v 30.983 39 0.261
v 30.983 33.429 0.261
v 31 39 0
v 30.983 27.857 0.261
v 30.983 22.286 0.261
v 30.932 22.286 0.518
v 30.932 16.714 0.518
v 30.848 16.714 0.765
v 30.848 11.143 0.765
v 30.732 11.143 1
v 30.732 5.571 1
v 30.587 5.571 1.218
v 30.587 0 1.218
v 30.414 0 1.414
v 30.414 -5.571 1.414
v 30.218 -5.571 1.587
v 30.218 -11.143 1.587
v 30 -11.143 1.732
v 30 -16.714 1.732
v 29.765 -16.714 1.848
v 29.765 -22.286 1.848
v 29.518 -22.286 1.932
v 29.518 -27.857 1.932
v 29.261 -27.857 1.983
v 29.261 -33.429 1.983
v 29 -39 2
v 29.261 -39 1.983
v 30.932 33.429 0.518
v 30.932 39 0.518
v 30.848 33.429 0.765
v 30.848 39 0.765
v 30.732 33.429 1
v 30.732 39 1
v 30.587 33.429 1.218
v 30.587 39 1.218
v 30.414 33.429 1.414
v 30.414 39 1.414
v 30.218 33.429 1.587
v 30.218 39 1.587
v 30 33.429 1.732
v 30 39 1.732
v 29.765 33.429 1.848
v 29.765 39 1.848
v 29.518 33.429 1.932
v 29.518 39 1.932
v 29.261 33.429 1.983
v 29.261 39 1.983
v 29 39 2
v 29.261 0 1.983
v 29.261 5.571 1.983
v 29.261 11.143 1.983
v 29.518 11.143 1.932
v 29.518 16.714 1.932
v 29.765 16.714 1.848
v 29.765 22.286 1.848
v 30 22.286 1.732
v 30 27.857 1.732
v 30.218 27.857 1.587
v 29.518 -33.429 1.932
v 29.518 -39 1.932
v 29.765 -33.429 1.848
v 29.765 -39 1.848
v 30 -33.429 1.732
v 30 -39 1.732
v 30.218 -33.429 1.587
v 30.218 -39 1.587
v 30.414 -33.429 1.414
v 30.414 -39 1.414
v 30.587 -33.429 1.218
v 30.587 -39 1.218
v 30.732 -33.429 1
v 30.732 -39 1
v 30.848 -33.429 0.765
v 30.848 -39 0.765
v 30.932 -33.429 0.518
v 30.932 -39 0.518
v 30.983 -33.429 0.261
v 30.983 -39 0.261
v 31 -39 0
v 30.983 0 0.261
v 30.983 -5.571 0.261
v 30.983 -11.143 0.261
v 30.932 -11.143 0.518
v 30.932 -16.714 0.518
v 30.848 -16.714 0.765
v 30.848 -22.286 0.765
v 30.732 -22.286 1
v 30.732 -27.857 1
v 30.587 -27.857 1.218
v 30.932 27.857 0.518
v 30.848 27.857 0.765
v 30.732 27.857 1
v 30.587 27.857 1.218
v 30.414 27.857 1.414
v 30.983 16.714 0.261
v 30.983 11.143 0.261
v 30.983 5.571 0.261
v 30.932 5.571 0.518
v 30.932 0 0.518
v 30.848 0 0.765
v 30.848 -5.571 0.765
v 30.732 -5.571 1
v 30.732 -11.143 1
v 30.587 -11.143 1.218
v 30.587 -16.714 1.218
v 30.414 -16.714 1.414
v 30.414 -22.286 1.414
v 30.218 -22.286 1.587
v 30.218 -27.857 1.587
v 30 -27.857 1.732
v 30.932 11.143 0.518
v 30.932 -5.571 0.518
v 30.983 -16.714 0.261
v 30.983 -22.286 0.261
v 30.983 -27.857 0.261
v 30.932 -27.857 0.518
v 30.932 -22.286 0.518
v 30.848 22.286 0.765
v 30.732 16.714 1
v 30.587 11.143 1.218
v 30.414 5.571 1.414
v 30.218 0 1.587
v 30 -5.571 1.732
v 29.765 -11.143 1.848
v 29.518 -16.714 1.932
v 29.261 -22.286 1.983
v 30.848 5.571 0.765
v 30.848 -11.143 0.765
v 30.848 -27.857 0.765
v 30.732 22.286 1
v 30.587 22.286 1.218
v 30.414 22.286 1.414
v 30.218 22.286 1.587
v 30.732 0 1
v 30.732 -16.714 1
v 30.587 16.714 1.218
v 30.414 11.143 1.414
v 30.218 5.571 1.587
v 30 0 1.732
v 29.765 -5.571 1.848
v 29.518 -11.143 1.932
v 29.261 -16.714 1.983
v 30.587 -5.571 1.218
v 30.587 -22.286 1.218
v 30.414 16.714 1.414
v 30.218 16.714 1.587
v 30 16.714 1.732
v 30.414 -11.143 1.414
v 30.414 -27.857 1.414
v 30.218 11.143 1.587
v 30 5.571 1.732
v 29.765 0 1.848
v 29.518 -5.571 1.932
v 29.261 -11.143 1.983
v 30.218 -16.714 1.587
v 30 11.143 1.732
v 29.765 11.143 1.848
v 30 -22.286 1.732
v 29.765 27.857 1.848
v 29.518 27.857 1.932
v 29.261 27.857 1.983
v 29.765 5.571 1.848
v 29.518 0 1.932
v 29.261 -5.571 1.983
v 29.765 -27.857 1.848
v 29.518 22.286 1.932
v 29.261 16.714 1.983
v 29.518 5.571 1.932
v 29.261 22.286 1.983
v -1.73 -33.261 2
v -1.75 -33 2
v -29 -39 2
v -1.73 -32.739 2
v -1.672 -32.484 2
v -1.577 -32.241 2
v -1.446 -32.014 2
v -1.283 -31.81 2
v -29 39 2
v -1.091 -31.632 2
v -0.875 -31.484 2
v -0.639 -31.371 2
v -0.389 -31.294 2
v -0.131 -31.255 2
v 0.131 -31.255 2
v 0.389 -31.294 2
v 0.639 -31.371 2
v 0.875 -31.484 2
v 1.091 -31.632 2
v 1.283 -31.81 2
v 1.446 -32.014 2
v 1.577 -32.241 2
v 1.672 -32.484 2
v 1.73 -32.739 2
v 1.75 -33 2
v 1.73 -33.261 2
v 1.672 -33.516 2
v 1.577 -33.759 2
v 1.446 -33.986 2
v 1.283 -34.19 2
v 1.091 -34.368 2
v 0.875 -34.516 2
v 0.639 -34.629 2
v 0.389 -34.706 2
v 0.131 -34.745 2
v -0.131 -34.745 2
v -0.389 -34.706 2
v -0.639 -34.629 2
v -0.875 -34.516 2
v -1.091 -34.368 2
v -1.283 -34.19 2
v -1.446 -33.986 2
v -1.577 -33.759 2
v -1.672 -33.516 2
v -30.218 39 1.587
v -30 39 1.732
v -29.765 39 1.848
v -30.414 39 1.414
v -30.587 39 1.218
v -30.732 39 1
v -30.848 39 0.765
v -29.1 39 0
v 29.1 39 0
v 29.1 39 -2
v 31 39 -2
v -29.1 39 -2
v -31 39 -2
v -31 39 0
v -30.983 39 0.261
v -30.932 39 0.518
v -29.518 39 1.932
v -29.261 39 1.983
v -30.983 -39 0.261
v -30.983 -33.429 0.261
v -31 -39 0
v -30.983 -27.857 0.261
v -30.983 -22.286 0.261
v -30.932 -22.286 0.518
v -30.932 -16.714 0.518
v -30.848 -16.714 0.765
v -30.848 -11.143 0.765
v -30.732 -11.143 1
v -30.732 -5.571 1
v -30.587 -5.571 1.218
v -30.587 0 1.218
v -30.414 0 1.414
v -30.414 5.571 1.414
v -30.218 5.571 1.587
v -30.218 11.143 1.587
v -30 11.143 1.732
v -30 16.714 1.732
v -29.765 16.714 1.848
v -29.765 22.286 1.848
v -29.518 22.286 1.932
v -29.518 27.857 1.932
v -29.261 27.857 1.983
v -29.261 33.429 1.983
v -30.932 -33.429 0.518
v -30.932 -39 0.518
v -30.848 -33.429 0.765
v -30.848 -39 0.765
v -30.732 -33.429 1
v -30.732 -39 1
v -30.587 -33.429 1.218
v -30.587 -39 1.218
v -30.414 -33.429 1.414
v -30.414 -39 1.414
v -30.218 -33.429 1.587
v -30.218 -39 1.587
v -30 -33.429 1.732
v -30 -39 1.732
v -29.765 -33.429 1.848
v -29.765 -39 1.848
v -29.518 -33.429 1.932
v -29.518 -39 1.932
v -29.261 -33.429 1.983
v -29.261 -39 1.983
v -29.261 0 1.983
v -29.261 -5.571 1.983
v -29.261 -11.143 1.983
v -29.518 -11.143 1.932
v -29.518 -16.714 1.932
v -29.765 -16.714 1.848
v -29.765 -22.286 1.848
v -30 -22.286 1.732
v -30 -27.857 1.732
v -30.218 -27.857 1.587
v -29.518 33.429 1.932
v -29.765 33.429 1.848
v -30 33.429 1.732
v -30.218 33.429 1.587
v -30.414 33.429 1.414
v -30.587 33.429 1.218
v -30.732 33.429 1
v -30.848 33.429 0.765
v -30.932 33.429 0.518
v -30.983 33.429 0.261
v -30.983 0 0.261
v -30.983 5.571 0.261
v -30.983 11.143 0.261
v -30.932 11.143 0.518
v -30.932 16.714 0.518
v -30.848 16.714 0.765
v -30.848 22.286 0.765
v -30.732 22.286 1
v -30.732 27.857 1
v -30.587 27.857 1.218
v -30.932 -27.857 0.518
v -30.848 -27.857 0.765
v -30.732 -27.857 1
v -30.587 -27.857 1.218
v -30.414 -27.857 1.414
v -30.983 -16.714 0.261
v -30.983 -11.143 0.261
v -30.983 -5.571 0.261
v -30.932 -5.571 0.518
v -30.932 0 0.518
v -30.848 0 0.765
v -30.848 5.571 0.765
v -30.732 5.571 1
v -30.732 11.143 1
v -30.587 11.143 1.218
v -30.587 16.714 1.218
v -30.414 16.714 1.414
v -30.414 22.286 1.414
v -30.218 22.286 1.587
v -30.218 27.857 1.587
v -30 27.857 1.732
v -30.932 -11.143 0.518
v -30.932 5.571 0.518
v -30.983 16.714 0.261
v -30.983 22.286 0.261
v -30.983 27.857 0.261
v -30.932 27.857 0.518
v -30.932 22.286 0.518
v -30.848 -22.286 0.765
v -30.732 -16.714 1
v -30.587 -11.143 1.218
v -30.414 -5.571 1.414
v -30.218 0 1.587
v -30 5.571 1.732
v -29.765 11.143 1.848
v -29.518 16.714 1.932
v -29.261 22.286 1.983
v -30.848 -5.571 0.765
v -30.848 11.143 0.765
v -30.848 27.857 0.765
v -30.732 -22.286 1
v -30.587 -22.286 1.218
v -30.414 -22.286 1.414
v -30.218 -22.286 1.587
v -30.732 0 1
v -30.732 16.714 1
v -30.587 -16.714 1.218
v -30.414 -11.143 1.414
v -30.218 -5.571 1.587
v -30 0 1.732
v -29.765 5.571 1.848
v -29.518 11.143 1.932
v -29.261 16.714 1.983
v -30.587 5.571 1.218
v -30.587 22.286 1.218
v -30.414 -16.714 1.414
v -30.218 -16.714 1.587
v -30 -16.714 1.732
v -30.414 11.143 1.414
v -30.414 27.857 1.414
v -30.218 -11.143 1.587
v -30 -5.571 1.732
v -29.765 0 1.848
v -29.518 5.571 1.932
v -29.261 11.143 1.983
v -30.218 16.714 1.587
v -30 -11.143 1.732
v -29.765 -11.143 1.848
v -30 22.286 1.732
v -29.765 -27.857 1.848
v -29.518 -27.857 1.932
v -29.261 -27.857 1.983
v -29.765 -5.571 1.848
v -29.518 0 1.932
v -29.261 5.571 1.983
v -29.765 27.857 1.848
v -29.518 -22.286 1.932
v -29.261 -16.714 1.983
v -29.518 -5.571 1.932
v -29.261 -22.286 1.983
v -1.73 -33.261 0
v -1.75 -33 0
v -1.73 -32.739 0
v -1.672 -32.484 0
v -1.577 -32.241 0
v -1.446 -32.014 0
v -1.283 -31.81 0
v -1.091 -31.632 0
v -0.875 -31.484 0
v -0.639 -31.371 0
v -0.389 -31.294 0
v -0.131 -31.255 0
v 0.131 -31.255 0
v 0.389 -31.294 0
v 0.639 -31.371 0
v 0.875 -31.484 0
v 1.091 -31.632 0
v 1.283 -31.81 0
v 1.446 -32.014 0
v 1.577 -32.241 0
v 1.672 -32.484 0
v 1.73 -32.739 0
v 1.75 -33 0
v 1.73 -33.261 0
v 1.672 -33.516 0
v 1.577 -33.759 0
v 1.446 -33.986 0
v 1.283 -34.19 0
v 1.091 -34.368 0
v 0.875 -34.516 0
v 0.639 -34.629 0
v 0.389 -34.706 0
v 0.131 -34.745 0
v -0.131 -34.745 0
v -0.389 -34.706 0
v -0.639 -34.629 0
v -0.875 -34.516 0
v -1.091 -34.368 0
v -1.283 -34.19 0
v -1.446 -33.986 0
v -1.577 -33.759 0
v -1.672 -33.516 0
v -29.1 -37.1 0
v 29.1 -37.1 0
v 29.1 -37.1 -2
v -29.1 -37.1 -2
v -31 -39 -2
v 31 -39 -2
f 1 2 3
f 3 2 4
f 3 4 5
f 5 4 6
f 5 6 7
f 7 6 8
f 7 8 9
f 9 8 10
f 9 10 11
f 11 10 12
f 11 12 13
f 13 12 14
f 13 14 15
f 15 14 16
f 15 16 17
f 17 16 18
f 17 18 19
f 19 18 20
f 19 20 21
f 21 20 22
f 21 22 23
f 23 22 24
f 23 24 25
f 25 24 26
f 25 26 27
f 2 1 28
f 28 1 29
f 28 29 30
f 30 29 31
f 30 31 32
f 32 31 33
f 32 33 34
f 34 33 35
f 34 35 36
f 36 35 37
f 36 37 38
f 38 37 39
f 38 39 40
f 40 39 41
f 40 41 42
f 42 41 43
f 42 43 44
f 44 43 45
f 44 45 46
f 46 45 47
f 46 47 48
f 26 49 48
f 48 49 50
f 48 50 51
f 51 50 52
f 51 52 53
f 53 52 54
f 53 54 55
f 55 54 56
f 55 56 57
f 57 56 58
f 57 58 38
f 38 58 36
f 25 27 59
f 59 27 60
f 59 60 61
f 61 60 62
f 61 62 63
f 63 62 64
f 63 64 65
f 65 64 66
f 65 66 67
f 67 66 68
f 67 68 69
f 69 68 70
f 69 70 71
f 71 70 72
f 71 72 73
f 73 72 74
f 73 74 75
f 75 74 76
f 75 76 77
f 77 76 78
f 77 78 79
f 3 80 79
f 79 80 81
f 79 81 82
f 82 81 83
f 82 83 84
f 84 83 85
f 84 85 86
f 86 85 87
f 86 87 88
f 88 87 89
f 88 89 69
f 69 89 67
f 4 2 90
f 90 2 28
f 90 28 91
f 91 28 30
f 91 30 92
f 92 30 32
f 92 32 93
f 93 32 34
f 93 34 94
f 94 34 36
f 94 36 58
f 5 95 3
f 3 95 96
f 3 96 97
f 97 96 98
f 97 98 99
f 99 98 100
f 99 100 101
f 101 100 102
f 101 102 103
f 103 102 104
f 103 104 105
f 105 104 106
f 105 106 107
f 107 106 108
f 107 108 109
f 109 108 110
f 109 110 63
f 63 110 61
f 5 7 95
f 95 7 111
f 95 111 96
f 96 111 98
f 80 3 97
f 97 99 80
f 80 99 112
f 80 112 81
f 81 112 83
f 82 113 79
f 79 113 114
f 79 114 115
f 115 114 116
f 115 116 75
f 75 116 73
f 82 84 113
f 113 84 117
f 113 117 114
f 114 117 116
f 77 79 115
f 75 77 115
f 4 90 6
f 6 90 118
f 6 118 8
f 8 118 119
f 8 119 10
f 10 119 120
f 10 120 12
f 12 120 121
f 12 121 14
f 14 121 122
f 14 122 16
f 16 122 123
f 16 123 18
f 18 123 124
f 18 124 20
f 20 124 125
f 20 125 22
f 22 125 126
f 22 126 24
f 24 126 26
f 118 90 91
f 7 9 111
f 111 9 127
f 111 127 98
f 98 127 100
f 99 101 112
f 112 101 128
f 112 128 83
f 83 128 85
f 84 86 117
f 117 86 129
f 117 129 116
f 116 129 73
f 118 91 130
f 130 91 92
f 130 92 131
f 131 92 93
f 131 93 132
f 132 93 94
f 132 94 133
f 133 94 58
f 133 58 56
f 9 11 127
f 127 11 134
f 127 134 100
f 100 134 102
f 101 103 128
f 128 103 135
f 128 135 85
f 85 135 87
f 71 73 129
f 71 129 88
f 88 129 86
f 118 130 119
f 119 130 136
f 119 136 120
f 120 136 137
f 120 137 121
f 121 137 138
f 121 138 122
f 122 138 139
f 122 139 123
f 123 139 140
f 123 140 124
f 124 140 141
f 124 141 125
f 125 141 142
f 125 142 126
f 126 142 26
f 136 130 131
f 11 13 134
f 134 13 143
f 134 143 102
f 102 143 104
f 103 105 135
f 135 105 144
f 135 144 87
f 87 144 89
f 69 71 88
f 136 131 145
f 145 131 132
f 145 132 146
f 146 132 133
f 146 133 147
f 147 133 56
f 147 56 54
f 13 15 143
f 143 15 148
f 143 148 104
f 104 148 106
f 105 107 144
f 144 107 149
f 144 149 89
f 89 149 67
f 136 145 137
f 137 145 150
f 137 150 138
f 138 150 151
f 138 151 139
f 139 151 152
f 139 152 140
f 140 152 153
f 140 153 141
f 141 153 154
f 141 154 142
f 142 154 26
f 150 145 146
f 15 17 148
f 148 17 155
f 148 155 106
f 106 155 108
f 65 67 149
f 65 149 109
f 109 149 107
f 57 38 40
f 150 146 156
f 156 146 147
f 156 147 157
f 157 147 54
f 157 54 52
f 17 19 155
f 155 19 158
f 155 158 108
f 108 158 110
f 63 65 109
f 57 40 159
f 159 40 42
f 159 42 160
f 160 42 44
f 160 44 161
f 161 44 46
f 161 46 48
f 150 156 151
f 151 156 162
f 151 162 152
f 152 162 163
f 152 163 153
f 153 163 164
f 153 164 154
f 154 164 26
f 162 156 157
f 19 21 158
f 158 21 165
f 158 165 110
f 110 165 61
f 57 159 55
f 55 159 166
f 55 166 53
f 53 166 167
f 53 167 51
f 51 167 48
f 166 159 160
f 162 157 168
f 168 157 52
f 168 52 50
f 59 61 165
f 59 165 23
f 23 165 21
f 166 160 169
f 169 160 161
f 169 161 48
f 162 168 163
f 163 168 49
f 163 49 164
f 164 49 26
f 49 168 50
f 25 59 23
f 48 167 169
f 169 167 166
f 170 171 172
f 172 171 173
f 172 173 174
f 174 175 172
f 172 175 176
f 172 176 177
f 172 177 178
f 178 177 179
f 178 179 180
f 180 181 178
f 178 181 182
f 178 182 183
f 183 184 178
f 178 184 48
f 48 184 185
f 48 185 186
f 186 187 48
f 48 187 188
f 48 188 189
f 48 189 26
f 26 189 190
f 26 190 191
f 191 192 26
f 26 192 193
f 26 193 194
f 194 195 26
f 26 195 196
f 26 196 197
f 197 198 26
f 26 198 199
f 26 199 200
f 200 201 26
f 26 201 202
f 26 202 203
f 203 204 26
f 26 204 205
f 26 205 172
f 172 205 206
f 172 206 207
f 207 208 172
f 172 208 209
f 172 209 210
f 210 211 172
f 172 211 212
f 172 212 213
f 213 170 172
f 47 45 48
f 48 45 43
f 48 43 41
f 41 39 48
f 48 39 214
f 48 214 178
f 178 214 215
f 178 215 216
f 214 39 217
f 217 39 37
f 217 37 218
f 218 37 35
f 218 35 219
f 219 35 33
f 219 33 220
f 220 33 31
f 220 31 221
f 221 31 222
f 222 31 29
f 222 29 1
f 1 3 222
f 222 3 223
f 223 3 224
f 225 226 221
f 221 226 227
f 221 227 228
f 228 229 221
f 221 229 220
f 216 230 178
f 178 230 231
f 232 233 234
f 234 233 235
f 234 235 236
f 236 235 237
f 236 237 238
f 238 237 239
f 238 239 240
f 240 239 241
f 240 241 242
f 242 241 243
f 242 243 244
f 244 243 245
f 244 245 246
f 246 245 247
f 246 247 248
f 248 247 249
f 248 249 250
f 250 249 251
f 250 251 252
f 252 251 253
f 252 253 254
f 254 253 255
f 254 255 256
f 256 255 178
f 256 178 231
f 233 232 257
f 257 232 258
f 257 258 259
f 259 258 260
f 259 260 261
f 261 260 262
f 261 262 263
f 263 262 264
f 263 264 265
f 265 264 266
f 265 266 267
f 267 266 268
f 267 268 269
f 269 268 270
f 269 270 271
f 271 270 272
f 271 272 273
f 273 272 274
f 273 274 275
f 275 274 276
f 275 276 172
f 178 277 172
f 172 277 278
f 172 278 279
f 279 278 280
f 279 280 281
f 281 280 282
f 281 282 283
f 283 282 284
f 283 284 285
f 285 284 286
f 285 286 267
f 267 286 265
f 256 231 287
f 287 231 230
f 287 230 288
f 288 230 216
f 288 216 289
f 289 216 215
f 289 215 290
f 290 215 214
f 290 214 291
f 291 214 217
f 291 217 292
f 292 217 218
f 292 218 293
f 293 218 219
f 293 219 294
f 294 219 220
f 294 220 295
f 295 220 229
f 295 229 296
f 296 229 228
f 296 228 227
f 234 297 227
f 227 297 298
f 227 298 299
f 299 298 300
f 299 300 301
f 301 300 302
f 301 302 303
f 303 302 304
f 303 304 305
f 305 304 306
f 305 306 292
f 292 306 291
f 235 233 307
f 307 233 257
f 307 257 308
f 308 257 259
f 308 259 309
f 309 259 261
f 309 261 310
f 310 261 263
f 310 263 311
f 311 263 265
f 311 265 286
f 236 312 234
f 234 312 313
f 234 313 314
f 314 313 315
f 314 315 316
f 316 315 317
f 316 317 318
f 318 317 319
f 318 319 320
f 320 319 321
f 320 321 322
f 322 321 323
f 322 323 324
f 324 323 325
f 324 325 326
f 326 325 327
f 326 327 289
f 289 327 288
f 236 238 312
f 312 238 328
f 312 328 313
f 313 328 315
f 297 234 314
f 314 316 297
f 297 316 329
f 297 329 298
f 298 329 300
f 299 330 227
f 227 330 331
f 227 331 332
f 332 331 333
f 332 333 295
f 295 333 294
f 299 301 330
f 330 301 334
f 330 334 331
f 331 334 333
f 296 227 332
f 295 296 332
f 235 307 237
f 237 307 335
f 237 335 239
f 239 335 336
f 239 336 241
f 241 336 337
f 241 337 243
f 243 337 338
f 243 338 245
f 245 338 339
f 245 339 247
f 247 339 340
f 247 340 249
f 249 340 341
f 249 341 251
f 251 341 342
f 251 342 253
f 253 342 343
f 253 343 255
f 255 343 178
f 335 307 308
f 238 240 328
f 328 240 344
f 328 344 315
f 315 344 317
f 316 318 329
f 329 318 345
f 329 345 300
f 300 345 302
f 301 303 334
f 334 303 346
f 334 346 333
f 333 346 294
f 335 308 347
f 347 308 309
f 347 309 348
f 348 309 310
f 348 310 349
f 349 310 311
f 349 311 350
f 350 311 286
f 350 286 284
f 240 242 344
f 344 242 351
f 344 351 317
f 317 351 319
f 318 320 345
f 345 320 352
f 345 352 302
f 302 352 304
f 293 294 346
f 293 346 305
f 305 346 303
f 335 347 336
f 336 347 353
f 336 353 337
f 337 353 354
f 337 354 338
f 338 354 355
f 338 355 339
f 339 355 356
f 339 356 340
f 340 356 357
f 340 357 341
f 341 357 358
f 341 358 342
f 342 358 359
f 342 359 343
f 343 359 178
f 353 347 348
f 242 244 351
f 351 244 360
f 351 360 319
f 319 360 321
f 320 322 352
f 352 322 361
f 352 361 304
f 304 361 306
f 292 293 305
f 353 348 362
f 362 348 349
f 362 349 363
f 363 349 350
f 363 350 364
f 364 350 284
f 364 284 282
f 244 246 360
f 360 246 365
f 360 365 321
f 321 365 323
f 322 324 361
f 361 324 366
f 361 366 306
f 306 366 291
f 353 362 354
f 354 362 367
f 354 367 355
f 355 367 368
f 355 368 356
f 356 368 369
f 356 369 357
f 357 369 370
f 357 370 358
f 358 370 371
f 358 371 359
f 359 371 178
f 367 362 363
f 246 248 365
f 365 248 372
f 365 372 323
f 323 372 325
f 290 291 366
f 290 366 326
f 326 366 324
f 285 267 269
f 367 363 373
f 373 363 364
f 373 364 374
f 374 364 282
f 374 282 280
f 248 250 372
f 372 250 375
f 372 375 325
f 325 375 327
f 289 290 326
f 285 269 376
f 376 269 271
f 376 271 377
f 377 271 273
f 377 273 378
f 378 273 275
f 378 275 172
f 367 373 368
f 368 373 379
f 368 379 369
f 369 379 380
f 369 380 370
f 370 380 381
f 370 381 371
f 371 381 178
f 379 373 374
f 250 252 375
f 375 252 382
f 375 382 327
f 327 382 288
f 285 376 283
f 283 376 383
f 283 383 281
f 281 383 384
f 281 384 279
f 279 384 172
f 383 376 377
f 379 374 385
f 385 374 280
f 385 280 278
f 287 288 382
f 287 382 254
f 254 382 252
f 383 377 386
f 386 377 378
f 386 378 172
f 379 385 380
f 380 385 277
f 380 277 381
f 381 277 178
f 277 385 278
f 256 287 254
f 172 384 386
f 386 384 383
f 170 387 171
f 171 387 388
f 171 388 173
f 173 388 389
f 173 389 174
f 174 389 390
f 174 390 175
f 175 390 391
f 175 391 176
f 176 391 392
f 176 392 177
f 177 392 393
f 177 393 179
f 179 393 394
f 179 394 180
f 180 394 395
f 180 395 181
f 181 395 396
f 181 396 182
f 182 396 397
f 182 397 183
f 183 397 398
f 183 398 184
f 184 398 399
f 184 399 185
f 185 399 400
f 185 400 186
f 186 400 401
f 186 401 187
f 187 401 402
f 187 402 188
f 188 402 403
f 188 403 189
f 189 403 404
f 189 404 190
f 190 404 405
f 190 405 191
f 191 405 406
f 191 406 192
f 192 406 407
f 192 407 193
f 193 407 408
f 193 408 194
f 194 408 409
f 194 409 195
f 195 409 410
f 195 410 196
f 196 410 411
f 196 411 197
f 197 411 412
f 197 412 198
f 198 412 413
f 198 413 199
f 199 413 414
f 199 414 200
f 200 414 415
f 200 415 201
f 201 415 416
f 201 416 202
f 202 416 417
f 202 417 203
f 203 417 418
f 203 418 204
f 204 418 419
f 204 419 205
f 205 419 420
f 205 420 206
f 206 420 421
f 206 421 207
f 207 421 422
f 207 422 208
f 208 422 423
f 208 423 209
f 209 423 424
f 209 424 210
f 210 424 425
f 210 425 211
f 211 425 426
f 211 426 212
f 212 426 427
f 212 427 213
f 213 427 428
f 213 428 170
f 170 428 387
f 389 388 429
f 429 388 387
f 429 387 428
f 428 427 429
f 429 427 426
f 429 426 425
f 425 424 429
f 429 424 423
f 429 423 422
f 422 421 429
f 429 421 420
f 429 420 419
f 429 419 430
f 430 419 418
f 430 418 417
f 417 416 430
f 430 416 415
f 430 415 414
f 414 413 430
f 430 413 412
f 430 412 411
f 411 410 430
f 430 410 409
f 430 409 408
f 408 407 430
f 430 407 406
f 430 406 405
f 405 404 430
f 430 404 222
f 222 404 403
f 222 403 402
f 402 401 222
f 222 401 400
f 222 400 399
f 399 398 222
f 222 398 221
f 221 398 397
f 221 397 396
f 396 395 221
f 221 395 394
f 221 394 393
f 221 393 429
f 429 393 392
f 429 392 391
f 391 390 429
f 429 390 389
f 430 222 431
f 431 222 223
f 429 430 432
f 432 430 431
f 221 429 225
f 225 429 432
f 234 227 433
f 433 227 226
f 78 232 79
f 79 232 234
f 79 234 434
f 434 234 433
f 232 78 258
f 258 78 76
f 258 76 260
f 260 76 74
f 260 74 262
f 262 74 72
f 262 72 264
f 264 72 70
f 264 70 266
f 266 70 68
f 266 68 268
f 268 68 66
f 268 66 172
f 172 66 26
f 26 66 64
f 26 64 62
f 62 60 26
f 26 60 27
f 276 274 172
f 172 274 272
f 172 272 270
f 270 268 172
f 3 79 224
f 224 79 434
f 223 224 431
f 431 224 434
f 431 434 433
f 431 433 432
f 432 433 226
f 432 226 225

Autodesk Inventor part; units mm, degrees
ref_plane "YZ Plane" through (0, 0, 0) normal (1, 0, 0) x (0, 1, 0)
ref_plane "XZ Plane" through (0, 0, 0) normal (0, 1, 0) x (-1, 0, 0)
ref_plane "XY Plane" through (0, 0, 0) normal (0, 0, 1) x (1, 0, 0)
sketch "스케치1" plane through (0, 0, 0) normal (0, 0, 1) x (1, 0, 0)
  line L0 (-31, -39) -> (31, -39)
  line L1 (31, -39) -> (31, 39)
  line L2 (31, 39) -> (-31, 39)
  line L3 (-31, 39) -> (-31, -39)
  line L4 (-31, -39) -> (31, 39) construction
  line L5 (31, -39) -> (-31, 39) construction
  line L6 (-29.1, 37.1) -> (29.1, 37.1)
  line L7 (29.1, 37.1) -> (29.1, -37.1)
  line L8 (29.1, -37.1) -> (-29.1, -37.1)
  line L9 (-29.1, -37.1) -> (-29.1, 37.1)
  line L10 (-29.1, 37.1) -> (-29.1, 39)
  line L11 (29.1, 37.1) -> (29.1, 39)
  point P0 (0, 0)
  dimension "d0" = 62
  dimension "d1" = 78
  dimension "d2" = 1.9
extrude "돌출1" add sketch "스케치1" against normal blind 2 contours L3 L2 L10 L9 L8 L7 L11 L1 L0
extrude "돌출2" add sketch "스케치1" along normal blind 2
sketch "스케치2" plane through (0, 0, 0) normal (0, 0, -1) x (-1, 0, 0)
  line L0 (-3, -45) -> (3, -45)
  line L1 (3, -45) -> (3, -33)
  line L2 (3, -33) -> (-3, -33) construction
  line L3 (-3, -33) -> (-3, -45)
  line L4 (31, -39) -> (-31, -39) projected
  line L5 (-3, -45) -> (3, -33) construction
  line L6 (3, -45) -> (-3, -33) construction
  circle A0 centre (0, -33) radius 3
  circle A1 centre (0, -33) radius 1.75
  point P0 (0, 0)
  point P1 (0, -39)
  point P2 (-3, -39)
  point P3 (3, -39)
  dimension "d7" = 12
  dimension "d8" = 6
  dimension "d9" = 3.5
extrude "돌출4" cut sketch "스케치2" against normal blind 2 contours A1
fillet "모깎기1" radius 2 2 edges at (-31, 0, 2) (31, 0, 2)
properties part number "커튼 정면 커버"
